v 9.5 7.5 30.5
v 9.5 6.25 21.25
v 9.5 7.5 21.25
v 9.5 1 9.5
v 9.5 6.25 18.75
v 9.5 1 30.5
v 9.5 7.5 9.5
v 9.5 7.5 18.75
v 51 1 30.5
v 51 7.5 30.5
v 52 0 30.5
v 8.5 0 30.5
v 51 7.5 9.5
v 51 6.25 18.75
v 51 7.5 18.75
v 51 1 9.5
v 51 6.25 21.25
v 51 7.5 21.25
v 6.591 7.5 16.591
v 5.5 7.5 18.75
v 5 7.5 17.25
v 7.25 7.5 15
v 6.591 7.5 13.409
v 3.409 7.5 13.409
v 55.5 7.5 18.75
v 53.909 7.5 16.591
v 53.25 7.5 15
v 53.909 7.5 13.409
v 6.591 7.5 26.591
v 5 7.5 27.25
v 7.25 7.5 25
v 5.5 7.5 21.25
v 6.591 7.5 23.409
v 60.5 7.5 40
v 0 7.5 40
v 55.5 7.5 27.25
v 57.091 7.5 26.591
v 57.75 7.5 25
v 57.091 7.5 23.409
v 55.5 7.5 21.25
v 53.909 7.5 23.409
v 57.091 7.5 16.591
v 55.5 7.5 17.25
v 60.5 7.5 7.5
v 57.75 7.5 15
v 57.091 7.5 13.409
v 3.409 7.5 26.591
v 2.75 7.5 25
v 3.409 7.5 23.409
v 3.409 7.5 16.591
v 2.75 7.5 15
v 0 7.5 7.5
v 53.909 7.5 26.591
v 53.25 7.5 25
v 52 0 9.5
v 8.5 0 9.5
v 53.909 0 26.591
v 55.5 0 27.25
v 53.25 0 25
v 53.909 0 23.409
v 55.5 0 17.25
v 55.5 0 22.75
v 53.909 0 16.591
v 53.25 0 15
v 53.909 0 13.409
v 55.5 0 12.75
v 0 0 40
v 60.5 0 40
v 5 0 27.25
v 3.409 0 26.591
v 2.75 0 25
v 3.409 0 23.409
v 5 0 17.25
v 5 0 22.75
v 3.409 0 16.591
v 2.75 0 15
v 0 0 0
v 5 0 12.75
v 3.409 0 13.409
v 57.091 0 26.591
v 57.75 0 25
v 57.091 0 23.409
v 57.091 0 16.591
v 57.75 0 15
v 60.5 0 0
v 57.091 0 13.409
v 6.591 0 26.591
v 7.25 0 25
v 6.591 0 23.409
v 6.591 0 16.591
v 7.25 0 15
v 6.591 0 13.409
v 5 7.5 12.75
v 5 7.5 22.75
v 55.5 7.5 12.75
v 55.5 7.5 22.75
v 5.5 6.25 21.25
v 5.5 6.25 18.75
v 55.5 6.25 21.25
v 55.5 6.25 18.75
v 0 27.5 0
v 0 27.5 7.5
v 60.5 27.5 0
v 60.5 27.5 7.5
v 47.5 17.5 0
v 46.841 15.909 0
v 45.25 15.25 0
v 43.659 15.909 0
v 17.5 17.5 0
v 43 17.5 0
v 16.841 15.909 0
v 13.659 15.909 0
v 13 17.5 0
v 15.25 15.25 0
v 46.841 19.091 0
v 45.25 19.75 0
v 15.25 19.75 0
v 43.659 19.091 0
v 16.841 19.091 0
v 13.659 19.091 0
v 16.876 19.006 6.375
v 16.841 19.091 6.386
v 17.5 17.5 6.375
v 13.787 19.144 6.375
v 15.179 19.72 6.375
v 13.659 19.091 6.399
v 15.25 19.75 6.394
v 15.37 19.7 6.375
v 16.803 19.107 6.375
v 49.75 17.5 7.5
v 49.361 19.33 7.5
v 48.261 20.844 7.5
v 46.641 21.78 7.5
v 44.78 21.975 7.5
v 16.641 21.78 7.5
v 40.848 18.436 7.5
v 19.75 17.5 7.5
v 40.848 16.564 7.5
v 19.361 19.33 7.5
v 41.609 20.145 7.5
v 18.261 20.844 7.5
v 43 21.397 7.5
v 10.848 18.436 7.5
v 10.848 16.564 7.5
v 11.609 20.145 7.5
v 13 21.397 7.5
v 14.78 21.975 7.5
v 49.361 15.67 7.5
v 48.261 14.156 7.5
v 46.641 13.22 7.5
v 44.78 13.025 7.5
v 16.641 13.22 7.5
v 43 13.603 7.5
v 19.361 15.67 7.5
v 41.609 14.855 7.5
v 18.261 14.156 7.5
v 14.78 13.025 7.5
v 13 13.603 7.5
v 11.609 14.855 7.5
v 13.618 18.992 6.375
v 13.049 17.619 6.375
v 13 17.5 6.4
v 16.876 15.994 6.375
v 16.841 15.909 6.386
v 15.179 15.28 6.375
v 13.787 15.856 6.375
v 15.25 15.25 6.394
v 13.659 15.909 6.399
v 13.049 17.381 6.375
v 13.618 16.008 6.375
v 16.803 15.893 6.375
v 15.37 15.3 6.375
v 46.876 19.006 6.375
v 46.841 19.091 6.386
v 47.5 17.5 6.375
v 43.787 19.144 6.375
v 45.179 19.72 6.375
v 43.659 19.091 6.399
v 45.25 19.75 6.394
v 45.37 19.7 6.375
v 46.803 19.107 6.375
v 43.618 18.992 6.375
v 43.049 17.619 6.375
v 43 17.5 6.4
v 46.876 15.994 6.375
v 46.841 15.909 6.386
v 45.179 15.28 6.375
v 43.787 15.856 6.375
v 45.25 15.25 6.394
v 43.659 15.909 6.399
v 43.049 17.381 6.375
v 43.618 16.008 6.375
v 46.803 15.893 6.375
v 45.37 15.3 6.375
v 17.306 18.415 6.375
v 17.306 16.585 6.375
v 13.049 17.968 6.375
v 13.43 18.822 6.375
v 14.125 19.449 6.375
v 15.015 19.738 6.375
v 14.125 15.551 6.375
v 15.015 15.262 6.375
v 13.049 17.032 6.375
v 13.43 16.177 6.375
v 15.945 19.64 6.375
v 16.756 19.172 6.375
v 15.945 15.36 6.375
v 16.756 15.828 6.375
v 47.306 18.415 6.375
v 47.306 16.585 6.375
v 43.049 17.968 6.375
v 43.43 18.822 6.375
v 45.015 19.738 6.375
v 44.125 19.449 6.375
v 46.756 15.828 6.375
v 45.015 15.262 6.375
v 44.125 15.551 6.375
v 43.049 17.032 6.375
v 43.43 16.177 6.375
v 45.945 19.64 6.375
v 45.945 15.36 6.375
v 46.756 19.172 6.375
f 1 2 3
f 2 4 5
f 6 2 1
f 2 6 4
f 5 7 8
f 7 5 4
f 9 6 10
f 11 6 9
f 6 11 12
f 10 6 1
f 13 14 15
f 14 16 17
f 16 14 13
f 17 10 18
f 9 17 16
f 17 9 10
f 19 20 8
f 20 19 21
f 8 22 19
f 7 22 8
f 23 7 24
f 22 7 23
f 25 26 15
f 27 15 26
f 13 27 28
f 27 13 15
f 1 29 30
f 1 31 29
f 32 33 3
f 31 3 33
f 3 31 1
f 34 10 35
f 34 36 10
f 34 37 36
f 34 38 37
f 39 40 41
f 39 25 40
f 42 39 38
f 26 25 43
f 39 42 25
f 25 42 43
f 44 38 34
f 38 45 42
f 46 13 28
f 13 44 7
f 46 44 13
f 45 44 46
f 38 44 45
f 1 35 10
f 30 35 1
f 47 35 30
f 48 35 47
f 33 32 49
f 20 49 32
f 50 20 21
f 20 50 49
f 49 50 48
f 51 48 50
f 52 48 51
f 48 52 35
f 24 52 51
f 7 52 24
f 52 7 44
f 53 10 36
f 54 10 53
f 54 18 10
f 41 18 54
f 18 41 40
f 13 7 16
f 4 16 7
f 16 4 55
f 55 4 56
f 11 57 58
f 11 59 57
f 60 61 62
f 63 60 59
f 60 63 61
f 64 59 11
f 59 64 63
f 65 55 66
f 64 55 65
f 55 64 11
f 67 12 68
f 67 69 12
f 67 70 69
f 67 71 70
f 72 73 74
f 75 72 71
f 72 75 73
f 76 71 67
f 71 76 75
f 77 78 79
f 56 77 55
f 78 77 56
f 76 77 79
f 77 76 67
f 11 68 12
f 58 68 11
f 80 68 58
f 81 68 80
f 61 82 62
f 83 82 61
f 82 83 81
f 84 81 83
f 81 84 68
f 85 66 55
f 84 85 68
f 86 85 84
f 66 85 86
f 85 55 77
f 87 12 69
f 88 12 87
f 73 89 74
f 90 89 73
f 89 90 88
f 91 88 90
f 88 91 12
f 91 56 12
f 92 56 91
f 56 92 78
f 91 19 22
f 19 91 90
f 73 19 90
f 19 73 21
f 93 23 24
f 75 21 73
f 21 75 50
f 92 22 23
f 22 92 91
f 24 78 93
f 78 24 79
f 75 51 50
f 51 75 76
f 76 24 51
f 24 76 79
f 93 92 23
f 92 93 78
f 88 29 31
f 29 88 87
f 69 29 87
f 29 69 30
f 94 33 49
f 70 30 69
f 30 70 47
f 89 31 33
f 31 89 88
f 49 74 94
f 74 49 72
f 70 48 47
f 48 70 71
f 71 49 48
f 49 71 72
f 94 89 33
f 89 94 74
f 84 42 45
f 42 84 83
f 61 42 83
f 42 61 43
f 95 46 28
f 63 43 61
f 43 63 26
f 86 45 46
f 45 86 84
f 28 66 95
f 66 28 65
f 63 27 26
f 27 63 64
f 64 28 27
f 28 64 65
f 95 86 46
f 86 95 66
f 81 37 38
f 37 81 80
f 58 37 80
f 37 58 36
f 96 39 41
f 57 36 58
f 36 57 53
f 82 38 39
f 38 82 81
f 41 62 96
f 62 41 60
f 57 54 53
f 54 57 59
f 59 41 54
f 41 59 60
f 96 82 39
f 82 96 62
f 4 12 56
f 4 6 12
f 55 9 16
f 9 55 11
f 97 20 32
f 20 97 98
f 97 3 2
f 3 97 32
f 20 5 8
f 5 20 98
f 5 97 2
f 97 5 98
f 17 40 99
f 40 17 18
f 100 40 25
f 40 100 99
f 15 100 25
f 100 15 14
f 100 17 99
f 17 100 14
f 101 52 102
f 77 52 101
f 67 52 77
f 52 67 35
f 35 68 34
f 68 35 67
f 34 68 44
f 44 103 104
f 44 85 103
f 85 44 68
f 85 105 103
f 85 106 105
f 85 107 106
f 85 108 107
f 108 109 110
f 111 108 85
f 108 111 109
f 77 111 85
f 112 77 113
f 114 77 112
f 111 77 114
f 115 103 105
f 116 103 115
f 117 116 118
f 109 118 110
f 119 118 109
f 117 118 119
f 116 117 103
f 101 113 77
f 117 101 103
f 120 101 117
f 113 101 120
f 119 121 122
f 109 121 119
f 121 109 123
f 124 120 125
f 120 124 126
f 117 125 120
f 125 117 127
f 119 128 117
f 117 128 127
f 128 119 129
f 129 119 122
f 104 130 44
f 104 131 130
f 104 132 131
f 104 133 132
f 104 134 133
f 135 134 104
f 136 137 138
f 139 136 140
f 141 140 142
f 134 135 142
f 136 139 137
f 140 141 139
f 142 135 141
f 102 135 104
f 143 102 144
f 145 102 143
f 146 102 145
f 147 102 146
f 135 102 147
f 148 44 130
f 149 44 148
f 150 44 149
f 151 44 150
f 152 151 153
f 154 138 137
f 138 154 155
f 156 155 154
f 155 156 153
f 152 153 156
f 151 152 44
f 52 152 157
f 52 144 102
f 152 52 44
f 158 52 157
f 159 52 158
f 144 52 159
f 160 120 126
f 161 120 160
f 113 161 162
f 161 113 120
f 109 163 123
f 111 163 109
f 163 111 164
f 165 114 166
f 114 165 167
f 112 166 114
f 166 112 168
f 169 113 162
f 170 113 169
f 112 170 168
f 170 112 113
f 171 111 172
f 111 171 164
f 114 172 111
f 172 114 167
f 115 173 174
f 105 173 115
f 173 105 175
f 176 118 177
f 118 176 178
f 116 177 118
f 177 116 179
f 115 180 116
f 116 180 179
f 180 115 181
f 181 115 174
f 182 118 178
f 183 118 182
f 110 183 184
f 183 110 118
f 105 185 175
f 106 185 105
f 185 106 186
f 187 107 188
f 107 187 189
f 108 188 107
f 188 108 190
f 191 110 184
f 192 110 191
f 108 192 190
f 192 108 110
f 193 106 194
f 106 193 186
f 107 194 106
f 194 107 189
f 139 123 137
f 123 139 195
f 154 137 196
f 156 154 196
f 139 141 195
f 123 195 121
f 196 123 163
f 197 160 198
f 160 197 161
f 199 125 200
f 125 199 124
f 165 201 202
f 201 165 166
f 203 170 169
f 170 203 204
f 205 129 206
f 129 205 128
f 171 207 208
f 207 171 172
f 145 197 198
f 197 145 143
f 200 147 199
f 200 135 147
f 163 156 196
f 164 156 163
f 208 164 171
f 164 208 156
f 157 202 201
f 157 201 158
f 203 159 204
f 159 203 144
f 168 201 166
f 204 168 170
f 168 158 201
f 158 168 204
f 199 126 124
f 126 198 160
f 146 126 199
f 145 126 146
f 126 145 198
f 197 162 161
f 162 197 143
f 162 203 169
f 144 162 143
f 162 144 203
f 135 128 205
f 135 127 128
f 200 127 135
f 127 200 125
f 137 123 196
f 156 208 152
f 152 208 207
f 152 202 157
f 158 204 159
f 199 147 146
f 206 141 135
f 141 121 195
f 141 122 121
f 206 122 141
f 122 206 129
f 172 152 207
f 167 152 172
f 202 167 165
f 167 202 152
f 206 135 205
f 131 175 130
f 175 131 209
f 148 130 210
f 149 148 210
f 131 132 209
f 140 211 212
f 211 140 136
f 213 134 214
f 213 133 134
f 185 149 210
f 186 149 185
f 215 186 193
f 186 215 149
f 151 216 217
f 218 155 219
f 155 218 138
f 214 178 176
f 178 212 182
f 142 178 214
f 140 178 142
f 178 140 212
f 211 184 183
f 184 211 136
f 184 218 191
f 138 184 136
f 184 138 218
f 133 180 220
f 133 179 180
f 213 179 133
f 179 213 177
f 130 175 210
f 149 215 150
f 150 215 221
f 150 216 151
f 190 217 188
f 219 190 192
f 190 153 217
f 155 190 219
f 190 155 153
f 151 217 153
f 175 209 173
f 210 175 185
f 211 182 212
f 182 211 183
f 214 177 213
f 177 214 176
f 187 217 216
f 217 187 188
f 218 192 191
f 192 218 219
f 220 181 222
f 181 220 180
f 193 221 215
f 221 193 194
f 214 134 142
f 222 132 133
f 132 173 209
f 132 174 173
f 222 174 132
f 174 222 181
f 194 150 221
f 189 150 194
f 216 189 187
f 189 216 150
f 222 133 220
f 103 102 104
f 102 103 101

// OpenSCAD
// Create the bracket in two parts
//
THICKNESS=7.5;    // Thickness of the walls of the bracket
HOLEDIAMETER=4.5; // Diameter of the holes
SERVOHEIGHT=20;   // How tall the servo motor is when placed side-on to drive legs
SERVOWIDTH=40.5;  // Width of the servo
SERVOSLACK=1;     // How much more room we want to give around the servo in each dimension to allow for each fitting
SIDEWIDTH=10;     // How wide the surround should be
SIDEHOLESEPX=50.5;// x distance between the holes on the side
SIDEHOLESEPZ=10;  // z distance between the holes on the side
BASEHOLESEP=30;   // Distance between the holes on the base of the bracket
BASEDEPTH=20;     // Depth of the projecting part of the base
NOTCHLENGTH=4.5;    // Dimensions of the notch on the rear
NOTCHWIDTH=2.5;
NOTCHDEPTH=1.25;

//Draw a prism based on a 
//right angled triangle
//l - length of prism
//w - width of triangle
//h - height of triangle
module prism(l, w, h) {
       polyhedron(points=[
               [0,0,h],           // 0    front top corner
               [0,0,0],[w,0,0],   // 1, 2 front left & right bottom corners
               [0,l,h],           // 3    back top corner
               [0,l,0],[w,l,0]    // 4, 5 back left & right bottom corners
       ], faces=[ // points for all faces must be ordered clockwise when looking in
               [0,2,1],    // top face
               [3,4,5],    // base face
               [0,1,4,3],  // h face
               [1,2,5,4],  // w face
               [0,3,5,2],  // hypotenuse face
       ]);
}

module bracketSide () {

  difference() {
    // The side
    cube([SIDEWIDTH*2+SERVOWIDTH, THICKNESS, SERVOHEIGHT+SIDEWIDTH*2]);

    union(){      
      // Take out the centre of the side
      // NB might also need to take out the top edge to allow the servo to slot in.
      // In that case, make the z in the cube above SERVOHEIGHT+SIDEWIDTH
      translate([SIDEWIDTH-SERVOSLACK/2, 0, SIDEWIDTH-SERVOSLACK/2])
        cube([SERVOWIDTH+SERVOSLACK, THICKNESS, SERVOHEIGHT+SERVOSLACK]);
      
      // And the holes in the LHS.
      translate([SIDEWIDTH/2,THICKNESS,SIDEWIDTH+(SERVOHEIGHT-SIDEHOLESEPZ)/2])
        rotate([90,0,0])
          cylinder(h=THICKNESS, d=HOLEDIAMETER);
      translate([SIDEWIDTH/2,THICKNESS,SIDEHOLESEPZ+SIDEWIDTH+(SERVOHEIGHT-SIDEHOLESEPZ)/2])
        rotate([90,0,0])
          cylinder(h=THICKNESS, d=HOLEDIAMETER);
      
      // And the holes in the RHS
      translate([1.5*SIDEWIDTH+SERVOWIDTH,THICKNESS,SIDEWIDTH+(SERVOHEIGHT-SIDEHOLESEPZ)/2])
        rotate([90,0,0])
          cylinder(h=THICKNESS, d=HOLEDIAMETER);
      translate([1.5*SIDEWIDTH+SERVOWIDTH,THICKNESS,SIDEHOLESEPZ+SIDEWIDTH+(SERVOHEIGHT-SIDEHOLESEPZ)/2])
        rotate([90,0,0])
          cylinder(h=THICKNESS, d=HOLEDIAMETER);
          
      // And the chamfer on the LHS
      translate([SIDEWIDTH-SERVOSLACK/2, 0, SIDEWIDTH-SERVOSLACK/2])
        rotate([90,0,180])
          prism(SERVOHEIGHT+SERVOSLACK, 1, 1);

      // And the chamfer on the RHS
      translate([SIDEWIDTH+SERVOWIDTH+SERVOSLACK/2, 0, SIDEWIDTH-SERVOSLACK/2])
        rotate([90,0,90])
          prism(SERVOHEIGHT+SERVOSLACK, 1, 1);
          
      // And the LHS rear notch
      translate([SIDEWIDTH-NOTCHLENGTH,THICKNESS-NOTCHDEPTH,SIDEWIDTH+SERVOHEIGHT/2-NOTCHWIDTH/2])
        cube([NOTCHLENGTH, NOTCHDEPTH, NOTCHWIDTH]);
      
      // And the RHS rear notch
      // And the LHS rear notch
      translate([SIDEWIDTH+SERVOWIDTH+SERVOSLACK/2,THICKNESS-NOTCHDEPTH,SIDEWIDTH+SERVOHEIGHT/2-NOTCHWIDTH/2])
        cube([NOTCHLENGTH, NOTCHDEPTH, NOTCHWIDTH]);
      
    }
  }
}

module bracketBase() {
  difference() {
    // The base
    cube([SERVOWIDTH+2*SIDEWIDTH, THICKNESS+BASEDEPTH, THICKNESS]);
    
    union() {
      // Holes
      translate([(SERVOWIDTH+2*SIDEWIDTH-BASEHOLESEP)/2, THICKNESS+BASEDEPTH/2, 0]) {
        cylinder(h=THICKNESS, d=HOLEDIAMETER);
      }
      translate([(SERVOWIDTH+2*SIDEWIDTH+BASEHOLESEP)/2, THICKNESS+BASEDEPTH/2, 0]) {
        cylinder(h=THICKNESS, d=HOLEDIAMETER);
      }
      // And countersinks
      translate([(SERVOWIDTH+2*SIDEWIDTH-BASEHOLESEP)/2, THICKNESS+BASEDEPTH/2, THICKNESS-HOLEDIAMETER/4]) {
        cylinder(h=HOLEDIAMETER/4, d1=HOLEDIAMETER, d2=HOLEDIAMETER*2);
      }
      translate([(SERVOWIDTH+2*SIDEWIDTH+BASEHOLESEP)/2, THICKNESS+BASEDEPTH/2, THICKNESS-HOLEDIAMETER/4]) {
        cylinder(h=HOLEDIAMETER/4, d1=HOLEDIAMETER, d2=HOLEDIAMETER*2);
      }
      
    }
  }
}

union() {
  bracketSide();
  bracketBase();
}
